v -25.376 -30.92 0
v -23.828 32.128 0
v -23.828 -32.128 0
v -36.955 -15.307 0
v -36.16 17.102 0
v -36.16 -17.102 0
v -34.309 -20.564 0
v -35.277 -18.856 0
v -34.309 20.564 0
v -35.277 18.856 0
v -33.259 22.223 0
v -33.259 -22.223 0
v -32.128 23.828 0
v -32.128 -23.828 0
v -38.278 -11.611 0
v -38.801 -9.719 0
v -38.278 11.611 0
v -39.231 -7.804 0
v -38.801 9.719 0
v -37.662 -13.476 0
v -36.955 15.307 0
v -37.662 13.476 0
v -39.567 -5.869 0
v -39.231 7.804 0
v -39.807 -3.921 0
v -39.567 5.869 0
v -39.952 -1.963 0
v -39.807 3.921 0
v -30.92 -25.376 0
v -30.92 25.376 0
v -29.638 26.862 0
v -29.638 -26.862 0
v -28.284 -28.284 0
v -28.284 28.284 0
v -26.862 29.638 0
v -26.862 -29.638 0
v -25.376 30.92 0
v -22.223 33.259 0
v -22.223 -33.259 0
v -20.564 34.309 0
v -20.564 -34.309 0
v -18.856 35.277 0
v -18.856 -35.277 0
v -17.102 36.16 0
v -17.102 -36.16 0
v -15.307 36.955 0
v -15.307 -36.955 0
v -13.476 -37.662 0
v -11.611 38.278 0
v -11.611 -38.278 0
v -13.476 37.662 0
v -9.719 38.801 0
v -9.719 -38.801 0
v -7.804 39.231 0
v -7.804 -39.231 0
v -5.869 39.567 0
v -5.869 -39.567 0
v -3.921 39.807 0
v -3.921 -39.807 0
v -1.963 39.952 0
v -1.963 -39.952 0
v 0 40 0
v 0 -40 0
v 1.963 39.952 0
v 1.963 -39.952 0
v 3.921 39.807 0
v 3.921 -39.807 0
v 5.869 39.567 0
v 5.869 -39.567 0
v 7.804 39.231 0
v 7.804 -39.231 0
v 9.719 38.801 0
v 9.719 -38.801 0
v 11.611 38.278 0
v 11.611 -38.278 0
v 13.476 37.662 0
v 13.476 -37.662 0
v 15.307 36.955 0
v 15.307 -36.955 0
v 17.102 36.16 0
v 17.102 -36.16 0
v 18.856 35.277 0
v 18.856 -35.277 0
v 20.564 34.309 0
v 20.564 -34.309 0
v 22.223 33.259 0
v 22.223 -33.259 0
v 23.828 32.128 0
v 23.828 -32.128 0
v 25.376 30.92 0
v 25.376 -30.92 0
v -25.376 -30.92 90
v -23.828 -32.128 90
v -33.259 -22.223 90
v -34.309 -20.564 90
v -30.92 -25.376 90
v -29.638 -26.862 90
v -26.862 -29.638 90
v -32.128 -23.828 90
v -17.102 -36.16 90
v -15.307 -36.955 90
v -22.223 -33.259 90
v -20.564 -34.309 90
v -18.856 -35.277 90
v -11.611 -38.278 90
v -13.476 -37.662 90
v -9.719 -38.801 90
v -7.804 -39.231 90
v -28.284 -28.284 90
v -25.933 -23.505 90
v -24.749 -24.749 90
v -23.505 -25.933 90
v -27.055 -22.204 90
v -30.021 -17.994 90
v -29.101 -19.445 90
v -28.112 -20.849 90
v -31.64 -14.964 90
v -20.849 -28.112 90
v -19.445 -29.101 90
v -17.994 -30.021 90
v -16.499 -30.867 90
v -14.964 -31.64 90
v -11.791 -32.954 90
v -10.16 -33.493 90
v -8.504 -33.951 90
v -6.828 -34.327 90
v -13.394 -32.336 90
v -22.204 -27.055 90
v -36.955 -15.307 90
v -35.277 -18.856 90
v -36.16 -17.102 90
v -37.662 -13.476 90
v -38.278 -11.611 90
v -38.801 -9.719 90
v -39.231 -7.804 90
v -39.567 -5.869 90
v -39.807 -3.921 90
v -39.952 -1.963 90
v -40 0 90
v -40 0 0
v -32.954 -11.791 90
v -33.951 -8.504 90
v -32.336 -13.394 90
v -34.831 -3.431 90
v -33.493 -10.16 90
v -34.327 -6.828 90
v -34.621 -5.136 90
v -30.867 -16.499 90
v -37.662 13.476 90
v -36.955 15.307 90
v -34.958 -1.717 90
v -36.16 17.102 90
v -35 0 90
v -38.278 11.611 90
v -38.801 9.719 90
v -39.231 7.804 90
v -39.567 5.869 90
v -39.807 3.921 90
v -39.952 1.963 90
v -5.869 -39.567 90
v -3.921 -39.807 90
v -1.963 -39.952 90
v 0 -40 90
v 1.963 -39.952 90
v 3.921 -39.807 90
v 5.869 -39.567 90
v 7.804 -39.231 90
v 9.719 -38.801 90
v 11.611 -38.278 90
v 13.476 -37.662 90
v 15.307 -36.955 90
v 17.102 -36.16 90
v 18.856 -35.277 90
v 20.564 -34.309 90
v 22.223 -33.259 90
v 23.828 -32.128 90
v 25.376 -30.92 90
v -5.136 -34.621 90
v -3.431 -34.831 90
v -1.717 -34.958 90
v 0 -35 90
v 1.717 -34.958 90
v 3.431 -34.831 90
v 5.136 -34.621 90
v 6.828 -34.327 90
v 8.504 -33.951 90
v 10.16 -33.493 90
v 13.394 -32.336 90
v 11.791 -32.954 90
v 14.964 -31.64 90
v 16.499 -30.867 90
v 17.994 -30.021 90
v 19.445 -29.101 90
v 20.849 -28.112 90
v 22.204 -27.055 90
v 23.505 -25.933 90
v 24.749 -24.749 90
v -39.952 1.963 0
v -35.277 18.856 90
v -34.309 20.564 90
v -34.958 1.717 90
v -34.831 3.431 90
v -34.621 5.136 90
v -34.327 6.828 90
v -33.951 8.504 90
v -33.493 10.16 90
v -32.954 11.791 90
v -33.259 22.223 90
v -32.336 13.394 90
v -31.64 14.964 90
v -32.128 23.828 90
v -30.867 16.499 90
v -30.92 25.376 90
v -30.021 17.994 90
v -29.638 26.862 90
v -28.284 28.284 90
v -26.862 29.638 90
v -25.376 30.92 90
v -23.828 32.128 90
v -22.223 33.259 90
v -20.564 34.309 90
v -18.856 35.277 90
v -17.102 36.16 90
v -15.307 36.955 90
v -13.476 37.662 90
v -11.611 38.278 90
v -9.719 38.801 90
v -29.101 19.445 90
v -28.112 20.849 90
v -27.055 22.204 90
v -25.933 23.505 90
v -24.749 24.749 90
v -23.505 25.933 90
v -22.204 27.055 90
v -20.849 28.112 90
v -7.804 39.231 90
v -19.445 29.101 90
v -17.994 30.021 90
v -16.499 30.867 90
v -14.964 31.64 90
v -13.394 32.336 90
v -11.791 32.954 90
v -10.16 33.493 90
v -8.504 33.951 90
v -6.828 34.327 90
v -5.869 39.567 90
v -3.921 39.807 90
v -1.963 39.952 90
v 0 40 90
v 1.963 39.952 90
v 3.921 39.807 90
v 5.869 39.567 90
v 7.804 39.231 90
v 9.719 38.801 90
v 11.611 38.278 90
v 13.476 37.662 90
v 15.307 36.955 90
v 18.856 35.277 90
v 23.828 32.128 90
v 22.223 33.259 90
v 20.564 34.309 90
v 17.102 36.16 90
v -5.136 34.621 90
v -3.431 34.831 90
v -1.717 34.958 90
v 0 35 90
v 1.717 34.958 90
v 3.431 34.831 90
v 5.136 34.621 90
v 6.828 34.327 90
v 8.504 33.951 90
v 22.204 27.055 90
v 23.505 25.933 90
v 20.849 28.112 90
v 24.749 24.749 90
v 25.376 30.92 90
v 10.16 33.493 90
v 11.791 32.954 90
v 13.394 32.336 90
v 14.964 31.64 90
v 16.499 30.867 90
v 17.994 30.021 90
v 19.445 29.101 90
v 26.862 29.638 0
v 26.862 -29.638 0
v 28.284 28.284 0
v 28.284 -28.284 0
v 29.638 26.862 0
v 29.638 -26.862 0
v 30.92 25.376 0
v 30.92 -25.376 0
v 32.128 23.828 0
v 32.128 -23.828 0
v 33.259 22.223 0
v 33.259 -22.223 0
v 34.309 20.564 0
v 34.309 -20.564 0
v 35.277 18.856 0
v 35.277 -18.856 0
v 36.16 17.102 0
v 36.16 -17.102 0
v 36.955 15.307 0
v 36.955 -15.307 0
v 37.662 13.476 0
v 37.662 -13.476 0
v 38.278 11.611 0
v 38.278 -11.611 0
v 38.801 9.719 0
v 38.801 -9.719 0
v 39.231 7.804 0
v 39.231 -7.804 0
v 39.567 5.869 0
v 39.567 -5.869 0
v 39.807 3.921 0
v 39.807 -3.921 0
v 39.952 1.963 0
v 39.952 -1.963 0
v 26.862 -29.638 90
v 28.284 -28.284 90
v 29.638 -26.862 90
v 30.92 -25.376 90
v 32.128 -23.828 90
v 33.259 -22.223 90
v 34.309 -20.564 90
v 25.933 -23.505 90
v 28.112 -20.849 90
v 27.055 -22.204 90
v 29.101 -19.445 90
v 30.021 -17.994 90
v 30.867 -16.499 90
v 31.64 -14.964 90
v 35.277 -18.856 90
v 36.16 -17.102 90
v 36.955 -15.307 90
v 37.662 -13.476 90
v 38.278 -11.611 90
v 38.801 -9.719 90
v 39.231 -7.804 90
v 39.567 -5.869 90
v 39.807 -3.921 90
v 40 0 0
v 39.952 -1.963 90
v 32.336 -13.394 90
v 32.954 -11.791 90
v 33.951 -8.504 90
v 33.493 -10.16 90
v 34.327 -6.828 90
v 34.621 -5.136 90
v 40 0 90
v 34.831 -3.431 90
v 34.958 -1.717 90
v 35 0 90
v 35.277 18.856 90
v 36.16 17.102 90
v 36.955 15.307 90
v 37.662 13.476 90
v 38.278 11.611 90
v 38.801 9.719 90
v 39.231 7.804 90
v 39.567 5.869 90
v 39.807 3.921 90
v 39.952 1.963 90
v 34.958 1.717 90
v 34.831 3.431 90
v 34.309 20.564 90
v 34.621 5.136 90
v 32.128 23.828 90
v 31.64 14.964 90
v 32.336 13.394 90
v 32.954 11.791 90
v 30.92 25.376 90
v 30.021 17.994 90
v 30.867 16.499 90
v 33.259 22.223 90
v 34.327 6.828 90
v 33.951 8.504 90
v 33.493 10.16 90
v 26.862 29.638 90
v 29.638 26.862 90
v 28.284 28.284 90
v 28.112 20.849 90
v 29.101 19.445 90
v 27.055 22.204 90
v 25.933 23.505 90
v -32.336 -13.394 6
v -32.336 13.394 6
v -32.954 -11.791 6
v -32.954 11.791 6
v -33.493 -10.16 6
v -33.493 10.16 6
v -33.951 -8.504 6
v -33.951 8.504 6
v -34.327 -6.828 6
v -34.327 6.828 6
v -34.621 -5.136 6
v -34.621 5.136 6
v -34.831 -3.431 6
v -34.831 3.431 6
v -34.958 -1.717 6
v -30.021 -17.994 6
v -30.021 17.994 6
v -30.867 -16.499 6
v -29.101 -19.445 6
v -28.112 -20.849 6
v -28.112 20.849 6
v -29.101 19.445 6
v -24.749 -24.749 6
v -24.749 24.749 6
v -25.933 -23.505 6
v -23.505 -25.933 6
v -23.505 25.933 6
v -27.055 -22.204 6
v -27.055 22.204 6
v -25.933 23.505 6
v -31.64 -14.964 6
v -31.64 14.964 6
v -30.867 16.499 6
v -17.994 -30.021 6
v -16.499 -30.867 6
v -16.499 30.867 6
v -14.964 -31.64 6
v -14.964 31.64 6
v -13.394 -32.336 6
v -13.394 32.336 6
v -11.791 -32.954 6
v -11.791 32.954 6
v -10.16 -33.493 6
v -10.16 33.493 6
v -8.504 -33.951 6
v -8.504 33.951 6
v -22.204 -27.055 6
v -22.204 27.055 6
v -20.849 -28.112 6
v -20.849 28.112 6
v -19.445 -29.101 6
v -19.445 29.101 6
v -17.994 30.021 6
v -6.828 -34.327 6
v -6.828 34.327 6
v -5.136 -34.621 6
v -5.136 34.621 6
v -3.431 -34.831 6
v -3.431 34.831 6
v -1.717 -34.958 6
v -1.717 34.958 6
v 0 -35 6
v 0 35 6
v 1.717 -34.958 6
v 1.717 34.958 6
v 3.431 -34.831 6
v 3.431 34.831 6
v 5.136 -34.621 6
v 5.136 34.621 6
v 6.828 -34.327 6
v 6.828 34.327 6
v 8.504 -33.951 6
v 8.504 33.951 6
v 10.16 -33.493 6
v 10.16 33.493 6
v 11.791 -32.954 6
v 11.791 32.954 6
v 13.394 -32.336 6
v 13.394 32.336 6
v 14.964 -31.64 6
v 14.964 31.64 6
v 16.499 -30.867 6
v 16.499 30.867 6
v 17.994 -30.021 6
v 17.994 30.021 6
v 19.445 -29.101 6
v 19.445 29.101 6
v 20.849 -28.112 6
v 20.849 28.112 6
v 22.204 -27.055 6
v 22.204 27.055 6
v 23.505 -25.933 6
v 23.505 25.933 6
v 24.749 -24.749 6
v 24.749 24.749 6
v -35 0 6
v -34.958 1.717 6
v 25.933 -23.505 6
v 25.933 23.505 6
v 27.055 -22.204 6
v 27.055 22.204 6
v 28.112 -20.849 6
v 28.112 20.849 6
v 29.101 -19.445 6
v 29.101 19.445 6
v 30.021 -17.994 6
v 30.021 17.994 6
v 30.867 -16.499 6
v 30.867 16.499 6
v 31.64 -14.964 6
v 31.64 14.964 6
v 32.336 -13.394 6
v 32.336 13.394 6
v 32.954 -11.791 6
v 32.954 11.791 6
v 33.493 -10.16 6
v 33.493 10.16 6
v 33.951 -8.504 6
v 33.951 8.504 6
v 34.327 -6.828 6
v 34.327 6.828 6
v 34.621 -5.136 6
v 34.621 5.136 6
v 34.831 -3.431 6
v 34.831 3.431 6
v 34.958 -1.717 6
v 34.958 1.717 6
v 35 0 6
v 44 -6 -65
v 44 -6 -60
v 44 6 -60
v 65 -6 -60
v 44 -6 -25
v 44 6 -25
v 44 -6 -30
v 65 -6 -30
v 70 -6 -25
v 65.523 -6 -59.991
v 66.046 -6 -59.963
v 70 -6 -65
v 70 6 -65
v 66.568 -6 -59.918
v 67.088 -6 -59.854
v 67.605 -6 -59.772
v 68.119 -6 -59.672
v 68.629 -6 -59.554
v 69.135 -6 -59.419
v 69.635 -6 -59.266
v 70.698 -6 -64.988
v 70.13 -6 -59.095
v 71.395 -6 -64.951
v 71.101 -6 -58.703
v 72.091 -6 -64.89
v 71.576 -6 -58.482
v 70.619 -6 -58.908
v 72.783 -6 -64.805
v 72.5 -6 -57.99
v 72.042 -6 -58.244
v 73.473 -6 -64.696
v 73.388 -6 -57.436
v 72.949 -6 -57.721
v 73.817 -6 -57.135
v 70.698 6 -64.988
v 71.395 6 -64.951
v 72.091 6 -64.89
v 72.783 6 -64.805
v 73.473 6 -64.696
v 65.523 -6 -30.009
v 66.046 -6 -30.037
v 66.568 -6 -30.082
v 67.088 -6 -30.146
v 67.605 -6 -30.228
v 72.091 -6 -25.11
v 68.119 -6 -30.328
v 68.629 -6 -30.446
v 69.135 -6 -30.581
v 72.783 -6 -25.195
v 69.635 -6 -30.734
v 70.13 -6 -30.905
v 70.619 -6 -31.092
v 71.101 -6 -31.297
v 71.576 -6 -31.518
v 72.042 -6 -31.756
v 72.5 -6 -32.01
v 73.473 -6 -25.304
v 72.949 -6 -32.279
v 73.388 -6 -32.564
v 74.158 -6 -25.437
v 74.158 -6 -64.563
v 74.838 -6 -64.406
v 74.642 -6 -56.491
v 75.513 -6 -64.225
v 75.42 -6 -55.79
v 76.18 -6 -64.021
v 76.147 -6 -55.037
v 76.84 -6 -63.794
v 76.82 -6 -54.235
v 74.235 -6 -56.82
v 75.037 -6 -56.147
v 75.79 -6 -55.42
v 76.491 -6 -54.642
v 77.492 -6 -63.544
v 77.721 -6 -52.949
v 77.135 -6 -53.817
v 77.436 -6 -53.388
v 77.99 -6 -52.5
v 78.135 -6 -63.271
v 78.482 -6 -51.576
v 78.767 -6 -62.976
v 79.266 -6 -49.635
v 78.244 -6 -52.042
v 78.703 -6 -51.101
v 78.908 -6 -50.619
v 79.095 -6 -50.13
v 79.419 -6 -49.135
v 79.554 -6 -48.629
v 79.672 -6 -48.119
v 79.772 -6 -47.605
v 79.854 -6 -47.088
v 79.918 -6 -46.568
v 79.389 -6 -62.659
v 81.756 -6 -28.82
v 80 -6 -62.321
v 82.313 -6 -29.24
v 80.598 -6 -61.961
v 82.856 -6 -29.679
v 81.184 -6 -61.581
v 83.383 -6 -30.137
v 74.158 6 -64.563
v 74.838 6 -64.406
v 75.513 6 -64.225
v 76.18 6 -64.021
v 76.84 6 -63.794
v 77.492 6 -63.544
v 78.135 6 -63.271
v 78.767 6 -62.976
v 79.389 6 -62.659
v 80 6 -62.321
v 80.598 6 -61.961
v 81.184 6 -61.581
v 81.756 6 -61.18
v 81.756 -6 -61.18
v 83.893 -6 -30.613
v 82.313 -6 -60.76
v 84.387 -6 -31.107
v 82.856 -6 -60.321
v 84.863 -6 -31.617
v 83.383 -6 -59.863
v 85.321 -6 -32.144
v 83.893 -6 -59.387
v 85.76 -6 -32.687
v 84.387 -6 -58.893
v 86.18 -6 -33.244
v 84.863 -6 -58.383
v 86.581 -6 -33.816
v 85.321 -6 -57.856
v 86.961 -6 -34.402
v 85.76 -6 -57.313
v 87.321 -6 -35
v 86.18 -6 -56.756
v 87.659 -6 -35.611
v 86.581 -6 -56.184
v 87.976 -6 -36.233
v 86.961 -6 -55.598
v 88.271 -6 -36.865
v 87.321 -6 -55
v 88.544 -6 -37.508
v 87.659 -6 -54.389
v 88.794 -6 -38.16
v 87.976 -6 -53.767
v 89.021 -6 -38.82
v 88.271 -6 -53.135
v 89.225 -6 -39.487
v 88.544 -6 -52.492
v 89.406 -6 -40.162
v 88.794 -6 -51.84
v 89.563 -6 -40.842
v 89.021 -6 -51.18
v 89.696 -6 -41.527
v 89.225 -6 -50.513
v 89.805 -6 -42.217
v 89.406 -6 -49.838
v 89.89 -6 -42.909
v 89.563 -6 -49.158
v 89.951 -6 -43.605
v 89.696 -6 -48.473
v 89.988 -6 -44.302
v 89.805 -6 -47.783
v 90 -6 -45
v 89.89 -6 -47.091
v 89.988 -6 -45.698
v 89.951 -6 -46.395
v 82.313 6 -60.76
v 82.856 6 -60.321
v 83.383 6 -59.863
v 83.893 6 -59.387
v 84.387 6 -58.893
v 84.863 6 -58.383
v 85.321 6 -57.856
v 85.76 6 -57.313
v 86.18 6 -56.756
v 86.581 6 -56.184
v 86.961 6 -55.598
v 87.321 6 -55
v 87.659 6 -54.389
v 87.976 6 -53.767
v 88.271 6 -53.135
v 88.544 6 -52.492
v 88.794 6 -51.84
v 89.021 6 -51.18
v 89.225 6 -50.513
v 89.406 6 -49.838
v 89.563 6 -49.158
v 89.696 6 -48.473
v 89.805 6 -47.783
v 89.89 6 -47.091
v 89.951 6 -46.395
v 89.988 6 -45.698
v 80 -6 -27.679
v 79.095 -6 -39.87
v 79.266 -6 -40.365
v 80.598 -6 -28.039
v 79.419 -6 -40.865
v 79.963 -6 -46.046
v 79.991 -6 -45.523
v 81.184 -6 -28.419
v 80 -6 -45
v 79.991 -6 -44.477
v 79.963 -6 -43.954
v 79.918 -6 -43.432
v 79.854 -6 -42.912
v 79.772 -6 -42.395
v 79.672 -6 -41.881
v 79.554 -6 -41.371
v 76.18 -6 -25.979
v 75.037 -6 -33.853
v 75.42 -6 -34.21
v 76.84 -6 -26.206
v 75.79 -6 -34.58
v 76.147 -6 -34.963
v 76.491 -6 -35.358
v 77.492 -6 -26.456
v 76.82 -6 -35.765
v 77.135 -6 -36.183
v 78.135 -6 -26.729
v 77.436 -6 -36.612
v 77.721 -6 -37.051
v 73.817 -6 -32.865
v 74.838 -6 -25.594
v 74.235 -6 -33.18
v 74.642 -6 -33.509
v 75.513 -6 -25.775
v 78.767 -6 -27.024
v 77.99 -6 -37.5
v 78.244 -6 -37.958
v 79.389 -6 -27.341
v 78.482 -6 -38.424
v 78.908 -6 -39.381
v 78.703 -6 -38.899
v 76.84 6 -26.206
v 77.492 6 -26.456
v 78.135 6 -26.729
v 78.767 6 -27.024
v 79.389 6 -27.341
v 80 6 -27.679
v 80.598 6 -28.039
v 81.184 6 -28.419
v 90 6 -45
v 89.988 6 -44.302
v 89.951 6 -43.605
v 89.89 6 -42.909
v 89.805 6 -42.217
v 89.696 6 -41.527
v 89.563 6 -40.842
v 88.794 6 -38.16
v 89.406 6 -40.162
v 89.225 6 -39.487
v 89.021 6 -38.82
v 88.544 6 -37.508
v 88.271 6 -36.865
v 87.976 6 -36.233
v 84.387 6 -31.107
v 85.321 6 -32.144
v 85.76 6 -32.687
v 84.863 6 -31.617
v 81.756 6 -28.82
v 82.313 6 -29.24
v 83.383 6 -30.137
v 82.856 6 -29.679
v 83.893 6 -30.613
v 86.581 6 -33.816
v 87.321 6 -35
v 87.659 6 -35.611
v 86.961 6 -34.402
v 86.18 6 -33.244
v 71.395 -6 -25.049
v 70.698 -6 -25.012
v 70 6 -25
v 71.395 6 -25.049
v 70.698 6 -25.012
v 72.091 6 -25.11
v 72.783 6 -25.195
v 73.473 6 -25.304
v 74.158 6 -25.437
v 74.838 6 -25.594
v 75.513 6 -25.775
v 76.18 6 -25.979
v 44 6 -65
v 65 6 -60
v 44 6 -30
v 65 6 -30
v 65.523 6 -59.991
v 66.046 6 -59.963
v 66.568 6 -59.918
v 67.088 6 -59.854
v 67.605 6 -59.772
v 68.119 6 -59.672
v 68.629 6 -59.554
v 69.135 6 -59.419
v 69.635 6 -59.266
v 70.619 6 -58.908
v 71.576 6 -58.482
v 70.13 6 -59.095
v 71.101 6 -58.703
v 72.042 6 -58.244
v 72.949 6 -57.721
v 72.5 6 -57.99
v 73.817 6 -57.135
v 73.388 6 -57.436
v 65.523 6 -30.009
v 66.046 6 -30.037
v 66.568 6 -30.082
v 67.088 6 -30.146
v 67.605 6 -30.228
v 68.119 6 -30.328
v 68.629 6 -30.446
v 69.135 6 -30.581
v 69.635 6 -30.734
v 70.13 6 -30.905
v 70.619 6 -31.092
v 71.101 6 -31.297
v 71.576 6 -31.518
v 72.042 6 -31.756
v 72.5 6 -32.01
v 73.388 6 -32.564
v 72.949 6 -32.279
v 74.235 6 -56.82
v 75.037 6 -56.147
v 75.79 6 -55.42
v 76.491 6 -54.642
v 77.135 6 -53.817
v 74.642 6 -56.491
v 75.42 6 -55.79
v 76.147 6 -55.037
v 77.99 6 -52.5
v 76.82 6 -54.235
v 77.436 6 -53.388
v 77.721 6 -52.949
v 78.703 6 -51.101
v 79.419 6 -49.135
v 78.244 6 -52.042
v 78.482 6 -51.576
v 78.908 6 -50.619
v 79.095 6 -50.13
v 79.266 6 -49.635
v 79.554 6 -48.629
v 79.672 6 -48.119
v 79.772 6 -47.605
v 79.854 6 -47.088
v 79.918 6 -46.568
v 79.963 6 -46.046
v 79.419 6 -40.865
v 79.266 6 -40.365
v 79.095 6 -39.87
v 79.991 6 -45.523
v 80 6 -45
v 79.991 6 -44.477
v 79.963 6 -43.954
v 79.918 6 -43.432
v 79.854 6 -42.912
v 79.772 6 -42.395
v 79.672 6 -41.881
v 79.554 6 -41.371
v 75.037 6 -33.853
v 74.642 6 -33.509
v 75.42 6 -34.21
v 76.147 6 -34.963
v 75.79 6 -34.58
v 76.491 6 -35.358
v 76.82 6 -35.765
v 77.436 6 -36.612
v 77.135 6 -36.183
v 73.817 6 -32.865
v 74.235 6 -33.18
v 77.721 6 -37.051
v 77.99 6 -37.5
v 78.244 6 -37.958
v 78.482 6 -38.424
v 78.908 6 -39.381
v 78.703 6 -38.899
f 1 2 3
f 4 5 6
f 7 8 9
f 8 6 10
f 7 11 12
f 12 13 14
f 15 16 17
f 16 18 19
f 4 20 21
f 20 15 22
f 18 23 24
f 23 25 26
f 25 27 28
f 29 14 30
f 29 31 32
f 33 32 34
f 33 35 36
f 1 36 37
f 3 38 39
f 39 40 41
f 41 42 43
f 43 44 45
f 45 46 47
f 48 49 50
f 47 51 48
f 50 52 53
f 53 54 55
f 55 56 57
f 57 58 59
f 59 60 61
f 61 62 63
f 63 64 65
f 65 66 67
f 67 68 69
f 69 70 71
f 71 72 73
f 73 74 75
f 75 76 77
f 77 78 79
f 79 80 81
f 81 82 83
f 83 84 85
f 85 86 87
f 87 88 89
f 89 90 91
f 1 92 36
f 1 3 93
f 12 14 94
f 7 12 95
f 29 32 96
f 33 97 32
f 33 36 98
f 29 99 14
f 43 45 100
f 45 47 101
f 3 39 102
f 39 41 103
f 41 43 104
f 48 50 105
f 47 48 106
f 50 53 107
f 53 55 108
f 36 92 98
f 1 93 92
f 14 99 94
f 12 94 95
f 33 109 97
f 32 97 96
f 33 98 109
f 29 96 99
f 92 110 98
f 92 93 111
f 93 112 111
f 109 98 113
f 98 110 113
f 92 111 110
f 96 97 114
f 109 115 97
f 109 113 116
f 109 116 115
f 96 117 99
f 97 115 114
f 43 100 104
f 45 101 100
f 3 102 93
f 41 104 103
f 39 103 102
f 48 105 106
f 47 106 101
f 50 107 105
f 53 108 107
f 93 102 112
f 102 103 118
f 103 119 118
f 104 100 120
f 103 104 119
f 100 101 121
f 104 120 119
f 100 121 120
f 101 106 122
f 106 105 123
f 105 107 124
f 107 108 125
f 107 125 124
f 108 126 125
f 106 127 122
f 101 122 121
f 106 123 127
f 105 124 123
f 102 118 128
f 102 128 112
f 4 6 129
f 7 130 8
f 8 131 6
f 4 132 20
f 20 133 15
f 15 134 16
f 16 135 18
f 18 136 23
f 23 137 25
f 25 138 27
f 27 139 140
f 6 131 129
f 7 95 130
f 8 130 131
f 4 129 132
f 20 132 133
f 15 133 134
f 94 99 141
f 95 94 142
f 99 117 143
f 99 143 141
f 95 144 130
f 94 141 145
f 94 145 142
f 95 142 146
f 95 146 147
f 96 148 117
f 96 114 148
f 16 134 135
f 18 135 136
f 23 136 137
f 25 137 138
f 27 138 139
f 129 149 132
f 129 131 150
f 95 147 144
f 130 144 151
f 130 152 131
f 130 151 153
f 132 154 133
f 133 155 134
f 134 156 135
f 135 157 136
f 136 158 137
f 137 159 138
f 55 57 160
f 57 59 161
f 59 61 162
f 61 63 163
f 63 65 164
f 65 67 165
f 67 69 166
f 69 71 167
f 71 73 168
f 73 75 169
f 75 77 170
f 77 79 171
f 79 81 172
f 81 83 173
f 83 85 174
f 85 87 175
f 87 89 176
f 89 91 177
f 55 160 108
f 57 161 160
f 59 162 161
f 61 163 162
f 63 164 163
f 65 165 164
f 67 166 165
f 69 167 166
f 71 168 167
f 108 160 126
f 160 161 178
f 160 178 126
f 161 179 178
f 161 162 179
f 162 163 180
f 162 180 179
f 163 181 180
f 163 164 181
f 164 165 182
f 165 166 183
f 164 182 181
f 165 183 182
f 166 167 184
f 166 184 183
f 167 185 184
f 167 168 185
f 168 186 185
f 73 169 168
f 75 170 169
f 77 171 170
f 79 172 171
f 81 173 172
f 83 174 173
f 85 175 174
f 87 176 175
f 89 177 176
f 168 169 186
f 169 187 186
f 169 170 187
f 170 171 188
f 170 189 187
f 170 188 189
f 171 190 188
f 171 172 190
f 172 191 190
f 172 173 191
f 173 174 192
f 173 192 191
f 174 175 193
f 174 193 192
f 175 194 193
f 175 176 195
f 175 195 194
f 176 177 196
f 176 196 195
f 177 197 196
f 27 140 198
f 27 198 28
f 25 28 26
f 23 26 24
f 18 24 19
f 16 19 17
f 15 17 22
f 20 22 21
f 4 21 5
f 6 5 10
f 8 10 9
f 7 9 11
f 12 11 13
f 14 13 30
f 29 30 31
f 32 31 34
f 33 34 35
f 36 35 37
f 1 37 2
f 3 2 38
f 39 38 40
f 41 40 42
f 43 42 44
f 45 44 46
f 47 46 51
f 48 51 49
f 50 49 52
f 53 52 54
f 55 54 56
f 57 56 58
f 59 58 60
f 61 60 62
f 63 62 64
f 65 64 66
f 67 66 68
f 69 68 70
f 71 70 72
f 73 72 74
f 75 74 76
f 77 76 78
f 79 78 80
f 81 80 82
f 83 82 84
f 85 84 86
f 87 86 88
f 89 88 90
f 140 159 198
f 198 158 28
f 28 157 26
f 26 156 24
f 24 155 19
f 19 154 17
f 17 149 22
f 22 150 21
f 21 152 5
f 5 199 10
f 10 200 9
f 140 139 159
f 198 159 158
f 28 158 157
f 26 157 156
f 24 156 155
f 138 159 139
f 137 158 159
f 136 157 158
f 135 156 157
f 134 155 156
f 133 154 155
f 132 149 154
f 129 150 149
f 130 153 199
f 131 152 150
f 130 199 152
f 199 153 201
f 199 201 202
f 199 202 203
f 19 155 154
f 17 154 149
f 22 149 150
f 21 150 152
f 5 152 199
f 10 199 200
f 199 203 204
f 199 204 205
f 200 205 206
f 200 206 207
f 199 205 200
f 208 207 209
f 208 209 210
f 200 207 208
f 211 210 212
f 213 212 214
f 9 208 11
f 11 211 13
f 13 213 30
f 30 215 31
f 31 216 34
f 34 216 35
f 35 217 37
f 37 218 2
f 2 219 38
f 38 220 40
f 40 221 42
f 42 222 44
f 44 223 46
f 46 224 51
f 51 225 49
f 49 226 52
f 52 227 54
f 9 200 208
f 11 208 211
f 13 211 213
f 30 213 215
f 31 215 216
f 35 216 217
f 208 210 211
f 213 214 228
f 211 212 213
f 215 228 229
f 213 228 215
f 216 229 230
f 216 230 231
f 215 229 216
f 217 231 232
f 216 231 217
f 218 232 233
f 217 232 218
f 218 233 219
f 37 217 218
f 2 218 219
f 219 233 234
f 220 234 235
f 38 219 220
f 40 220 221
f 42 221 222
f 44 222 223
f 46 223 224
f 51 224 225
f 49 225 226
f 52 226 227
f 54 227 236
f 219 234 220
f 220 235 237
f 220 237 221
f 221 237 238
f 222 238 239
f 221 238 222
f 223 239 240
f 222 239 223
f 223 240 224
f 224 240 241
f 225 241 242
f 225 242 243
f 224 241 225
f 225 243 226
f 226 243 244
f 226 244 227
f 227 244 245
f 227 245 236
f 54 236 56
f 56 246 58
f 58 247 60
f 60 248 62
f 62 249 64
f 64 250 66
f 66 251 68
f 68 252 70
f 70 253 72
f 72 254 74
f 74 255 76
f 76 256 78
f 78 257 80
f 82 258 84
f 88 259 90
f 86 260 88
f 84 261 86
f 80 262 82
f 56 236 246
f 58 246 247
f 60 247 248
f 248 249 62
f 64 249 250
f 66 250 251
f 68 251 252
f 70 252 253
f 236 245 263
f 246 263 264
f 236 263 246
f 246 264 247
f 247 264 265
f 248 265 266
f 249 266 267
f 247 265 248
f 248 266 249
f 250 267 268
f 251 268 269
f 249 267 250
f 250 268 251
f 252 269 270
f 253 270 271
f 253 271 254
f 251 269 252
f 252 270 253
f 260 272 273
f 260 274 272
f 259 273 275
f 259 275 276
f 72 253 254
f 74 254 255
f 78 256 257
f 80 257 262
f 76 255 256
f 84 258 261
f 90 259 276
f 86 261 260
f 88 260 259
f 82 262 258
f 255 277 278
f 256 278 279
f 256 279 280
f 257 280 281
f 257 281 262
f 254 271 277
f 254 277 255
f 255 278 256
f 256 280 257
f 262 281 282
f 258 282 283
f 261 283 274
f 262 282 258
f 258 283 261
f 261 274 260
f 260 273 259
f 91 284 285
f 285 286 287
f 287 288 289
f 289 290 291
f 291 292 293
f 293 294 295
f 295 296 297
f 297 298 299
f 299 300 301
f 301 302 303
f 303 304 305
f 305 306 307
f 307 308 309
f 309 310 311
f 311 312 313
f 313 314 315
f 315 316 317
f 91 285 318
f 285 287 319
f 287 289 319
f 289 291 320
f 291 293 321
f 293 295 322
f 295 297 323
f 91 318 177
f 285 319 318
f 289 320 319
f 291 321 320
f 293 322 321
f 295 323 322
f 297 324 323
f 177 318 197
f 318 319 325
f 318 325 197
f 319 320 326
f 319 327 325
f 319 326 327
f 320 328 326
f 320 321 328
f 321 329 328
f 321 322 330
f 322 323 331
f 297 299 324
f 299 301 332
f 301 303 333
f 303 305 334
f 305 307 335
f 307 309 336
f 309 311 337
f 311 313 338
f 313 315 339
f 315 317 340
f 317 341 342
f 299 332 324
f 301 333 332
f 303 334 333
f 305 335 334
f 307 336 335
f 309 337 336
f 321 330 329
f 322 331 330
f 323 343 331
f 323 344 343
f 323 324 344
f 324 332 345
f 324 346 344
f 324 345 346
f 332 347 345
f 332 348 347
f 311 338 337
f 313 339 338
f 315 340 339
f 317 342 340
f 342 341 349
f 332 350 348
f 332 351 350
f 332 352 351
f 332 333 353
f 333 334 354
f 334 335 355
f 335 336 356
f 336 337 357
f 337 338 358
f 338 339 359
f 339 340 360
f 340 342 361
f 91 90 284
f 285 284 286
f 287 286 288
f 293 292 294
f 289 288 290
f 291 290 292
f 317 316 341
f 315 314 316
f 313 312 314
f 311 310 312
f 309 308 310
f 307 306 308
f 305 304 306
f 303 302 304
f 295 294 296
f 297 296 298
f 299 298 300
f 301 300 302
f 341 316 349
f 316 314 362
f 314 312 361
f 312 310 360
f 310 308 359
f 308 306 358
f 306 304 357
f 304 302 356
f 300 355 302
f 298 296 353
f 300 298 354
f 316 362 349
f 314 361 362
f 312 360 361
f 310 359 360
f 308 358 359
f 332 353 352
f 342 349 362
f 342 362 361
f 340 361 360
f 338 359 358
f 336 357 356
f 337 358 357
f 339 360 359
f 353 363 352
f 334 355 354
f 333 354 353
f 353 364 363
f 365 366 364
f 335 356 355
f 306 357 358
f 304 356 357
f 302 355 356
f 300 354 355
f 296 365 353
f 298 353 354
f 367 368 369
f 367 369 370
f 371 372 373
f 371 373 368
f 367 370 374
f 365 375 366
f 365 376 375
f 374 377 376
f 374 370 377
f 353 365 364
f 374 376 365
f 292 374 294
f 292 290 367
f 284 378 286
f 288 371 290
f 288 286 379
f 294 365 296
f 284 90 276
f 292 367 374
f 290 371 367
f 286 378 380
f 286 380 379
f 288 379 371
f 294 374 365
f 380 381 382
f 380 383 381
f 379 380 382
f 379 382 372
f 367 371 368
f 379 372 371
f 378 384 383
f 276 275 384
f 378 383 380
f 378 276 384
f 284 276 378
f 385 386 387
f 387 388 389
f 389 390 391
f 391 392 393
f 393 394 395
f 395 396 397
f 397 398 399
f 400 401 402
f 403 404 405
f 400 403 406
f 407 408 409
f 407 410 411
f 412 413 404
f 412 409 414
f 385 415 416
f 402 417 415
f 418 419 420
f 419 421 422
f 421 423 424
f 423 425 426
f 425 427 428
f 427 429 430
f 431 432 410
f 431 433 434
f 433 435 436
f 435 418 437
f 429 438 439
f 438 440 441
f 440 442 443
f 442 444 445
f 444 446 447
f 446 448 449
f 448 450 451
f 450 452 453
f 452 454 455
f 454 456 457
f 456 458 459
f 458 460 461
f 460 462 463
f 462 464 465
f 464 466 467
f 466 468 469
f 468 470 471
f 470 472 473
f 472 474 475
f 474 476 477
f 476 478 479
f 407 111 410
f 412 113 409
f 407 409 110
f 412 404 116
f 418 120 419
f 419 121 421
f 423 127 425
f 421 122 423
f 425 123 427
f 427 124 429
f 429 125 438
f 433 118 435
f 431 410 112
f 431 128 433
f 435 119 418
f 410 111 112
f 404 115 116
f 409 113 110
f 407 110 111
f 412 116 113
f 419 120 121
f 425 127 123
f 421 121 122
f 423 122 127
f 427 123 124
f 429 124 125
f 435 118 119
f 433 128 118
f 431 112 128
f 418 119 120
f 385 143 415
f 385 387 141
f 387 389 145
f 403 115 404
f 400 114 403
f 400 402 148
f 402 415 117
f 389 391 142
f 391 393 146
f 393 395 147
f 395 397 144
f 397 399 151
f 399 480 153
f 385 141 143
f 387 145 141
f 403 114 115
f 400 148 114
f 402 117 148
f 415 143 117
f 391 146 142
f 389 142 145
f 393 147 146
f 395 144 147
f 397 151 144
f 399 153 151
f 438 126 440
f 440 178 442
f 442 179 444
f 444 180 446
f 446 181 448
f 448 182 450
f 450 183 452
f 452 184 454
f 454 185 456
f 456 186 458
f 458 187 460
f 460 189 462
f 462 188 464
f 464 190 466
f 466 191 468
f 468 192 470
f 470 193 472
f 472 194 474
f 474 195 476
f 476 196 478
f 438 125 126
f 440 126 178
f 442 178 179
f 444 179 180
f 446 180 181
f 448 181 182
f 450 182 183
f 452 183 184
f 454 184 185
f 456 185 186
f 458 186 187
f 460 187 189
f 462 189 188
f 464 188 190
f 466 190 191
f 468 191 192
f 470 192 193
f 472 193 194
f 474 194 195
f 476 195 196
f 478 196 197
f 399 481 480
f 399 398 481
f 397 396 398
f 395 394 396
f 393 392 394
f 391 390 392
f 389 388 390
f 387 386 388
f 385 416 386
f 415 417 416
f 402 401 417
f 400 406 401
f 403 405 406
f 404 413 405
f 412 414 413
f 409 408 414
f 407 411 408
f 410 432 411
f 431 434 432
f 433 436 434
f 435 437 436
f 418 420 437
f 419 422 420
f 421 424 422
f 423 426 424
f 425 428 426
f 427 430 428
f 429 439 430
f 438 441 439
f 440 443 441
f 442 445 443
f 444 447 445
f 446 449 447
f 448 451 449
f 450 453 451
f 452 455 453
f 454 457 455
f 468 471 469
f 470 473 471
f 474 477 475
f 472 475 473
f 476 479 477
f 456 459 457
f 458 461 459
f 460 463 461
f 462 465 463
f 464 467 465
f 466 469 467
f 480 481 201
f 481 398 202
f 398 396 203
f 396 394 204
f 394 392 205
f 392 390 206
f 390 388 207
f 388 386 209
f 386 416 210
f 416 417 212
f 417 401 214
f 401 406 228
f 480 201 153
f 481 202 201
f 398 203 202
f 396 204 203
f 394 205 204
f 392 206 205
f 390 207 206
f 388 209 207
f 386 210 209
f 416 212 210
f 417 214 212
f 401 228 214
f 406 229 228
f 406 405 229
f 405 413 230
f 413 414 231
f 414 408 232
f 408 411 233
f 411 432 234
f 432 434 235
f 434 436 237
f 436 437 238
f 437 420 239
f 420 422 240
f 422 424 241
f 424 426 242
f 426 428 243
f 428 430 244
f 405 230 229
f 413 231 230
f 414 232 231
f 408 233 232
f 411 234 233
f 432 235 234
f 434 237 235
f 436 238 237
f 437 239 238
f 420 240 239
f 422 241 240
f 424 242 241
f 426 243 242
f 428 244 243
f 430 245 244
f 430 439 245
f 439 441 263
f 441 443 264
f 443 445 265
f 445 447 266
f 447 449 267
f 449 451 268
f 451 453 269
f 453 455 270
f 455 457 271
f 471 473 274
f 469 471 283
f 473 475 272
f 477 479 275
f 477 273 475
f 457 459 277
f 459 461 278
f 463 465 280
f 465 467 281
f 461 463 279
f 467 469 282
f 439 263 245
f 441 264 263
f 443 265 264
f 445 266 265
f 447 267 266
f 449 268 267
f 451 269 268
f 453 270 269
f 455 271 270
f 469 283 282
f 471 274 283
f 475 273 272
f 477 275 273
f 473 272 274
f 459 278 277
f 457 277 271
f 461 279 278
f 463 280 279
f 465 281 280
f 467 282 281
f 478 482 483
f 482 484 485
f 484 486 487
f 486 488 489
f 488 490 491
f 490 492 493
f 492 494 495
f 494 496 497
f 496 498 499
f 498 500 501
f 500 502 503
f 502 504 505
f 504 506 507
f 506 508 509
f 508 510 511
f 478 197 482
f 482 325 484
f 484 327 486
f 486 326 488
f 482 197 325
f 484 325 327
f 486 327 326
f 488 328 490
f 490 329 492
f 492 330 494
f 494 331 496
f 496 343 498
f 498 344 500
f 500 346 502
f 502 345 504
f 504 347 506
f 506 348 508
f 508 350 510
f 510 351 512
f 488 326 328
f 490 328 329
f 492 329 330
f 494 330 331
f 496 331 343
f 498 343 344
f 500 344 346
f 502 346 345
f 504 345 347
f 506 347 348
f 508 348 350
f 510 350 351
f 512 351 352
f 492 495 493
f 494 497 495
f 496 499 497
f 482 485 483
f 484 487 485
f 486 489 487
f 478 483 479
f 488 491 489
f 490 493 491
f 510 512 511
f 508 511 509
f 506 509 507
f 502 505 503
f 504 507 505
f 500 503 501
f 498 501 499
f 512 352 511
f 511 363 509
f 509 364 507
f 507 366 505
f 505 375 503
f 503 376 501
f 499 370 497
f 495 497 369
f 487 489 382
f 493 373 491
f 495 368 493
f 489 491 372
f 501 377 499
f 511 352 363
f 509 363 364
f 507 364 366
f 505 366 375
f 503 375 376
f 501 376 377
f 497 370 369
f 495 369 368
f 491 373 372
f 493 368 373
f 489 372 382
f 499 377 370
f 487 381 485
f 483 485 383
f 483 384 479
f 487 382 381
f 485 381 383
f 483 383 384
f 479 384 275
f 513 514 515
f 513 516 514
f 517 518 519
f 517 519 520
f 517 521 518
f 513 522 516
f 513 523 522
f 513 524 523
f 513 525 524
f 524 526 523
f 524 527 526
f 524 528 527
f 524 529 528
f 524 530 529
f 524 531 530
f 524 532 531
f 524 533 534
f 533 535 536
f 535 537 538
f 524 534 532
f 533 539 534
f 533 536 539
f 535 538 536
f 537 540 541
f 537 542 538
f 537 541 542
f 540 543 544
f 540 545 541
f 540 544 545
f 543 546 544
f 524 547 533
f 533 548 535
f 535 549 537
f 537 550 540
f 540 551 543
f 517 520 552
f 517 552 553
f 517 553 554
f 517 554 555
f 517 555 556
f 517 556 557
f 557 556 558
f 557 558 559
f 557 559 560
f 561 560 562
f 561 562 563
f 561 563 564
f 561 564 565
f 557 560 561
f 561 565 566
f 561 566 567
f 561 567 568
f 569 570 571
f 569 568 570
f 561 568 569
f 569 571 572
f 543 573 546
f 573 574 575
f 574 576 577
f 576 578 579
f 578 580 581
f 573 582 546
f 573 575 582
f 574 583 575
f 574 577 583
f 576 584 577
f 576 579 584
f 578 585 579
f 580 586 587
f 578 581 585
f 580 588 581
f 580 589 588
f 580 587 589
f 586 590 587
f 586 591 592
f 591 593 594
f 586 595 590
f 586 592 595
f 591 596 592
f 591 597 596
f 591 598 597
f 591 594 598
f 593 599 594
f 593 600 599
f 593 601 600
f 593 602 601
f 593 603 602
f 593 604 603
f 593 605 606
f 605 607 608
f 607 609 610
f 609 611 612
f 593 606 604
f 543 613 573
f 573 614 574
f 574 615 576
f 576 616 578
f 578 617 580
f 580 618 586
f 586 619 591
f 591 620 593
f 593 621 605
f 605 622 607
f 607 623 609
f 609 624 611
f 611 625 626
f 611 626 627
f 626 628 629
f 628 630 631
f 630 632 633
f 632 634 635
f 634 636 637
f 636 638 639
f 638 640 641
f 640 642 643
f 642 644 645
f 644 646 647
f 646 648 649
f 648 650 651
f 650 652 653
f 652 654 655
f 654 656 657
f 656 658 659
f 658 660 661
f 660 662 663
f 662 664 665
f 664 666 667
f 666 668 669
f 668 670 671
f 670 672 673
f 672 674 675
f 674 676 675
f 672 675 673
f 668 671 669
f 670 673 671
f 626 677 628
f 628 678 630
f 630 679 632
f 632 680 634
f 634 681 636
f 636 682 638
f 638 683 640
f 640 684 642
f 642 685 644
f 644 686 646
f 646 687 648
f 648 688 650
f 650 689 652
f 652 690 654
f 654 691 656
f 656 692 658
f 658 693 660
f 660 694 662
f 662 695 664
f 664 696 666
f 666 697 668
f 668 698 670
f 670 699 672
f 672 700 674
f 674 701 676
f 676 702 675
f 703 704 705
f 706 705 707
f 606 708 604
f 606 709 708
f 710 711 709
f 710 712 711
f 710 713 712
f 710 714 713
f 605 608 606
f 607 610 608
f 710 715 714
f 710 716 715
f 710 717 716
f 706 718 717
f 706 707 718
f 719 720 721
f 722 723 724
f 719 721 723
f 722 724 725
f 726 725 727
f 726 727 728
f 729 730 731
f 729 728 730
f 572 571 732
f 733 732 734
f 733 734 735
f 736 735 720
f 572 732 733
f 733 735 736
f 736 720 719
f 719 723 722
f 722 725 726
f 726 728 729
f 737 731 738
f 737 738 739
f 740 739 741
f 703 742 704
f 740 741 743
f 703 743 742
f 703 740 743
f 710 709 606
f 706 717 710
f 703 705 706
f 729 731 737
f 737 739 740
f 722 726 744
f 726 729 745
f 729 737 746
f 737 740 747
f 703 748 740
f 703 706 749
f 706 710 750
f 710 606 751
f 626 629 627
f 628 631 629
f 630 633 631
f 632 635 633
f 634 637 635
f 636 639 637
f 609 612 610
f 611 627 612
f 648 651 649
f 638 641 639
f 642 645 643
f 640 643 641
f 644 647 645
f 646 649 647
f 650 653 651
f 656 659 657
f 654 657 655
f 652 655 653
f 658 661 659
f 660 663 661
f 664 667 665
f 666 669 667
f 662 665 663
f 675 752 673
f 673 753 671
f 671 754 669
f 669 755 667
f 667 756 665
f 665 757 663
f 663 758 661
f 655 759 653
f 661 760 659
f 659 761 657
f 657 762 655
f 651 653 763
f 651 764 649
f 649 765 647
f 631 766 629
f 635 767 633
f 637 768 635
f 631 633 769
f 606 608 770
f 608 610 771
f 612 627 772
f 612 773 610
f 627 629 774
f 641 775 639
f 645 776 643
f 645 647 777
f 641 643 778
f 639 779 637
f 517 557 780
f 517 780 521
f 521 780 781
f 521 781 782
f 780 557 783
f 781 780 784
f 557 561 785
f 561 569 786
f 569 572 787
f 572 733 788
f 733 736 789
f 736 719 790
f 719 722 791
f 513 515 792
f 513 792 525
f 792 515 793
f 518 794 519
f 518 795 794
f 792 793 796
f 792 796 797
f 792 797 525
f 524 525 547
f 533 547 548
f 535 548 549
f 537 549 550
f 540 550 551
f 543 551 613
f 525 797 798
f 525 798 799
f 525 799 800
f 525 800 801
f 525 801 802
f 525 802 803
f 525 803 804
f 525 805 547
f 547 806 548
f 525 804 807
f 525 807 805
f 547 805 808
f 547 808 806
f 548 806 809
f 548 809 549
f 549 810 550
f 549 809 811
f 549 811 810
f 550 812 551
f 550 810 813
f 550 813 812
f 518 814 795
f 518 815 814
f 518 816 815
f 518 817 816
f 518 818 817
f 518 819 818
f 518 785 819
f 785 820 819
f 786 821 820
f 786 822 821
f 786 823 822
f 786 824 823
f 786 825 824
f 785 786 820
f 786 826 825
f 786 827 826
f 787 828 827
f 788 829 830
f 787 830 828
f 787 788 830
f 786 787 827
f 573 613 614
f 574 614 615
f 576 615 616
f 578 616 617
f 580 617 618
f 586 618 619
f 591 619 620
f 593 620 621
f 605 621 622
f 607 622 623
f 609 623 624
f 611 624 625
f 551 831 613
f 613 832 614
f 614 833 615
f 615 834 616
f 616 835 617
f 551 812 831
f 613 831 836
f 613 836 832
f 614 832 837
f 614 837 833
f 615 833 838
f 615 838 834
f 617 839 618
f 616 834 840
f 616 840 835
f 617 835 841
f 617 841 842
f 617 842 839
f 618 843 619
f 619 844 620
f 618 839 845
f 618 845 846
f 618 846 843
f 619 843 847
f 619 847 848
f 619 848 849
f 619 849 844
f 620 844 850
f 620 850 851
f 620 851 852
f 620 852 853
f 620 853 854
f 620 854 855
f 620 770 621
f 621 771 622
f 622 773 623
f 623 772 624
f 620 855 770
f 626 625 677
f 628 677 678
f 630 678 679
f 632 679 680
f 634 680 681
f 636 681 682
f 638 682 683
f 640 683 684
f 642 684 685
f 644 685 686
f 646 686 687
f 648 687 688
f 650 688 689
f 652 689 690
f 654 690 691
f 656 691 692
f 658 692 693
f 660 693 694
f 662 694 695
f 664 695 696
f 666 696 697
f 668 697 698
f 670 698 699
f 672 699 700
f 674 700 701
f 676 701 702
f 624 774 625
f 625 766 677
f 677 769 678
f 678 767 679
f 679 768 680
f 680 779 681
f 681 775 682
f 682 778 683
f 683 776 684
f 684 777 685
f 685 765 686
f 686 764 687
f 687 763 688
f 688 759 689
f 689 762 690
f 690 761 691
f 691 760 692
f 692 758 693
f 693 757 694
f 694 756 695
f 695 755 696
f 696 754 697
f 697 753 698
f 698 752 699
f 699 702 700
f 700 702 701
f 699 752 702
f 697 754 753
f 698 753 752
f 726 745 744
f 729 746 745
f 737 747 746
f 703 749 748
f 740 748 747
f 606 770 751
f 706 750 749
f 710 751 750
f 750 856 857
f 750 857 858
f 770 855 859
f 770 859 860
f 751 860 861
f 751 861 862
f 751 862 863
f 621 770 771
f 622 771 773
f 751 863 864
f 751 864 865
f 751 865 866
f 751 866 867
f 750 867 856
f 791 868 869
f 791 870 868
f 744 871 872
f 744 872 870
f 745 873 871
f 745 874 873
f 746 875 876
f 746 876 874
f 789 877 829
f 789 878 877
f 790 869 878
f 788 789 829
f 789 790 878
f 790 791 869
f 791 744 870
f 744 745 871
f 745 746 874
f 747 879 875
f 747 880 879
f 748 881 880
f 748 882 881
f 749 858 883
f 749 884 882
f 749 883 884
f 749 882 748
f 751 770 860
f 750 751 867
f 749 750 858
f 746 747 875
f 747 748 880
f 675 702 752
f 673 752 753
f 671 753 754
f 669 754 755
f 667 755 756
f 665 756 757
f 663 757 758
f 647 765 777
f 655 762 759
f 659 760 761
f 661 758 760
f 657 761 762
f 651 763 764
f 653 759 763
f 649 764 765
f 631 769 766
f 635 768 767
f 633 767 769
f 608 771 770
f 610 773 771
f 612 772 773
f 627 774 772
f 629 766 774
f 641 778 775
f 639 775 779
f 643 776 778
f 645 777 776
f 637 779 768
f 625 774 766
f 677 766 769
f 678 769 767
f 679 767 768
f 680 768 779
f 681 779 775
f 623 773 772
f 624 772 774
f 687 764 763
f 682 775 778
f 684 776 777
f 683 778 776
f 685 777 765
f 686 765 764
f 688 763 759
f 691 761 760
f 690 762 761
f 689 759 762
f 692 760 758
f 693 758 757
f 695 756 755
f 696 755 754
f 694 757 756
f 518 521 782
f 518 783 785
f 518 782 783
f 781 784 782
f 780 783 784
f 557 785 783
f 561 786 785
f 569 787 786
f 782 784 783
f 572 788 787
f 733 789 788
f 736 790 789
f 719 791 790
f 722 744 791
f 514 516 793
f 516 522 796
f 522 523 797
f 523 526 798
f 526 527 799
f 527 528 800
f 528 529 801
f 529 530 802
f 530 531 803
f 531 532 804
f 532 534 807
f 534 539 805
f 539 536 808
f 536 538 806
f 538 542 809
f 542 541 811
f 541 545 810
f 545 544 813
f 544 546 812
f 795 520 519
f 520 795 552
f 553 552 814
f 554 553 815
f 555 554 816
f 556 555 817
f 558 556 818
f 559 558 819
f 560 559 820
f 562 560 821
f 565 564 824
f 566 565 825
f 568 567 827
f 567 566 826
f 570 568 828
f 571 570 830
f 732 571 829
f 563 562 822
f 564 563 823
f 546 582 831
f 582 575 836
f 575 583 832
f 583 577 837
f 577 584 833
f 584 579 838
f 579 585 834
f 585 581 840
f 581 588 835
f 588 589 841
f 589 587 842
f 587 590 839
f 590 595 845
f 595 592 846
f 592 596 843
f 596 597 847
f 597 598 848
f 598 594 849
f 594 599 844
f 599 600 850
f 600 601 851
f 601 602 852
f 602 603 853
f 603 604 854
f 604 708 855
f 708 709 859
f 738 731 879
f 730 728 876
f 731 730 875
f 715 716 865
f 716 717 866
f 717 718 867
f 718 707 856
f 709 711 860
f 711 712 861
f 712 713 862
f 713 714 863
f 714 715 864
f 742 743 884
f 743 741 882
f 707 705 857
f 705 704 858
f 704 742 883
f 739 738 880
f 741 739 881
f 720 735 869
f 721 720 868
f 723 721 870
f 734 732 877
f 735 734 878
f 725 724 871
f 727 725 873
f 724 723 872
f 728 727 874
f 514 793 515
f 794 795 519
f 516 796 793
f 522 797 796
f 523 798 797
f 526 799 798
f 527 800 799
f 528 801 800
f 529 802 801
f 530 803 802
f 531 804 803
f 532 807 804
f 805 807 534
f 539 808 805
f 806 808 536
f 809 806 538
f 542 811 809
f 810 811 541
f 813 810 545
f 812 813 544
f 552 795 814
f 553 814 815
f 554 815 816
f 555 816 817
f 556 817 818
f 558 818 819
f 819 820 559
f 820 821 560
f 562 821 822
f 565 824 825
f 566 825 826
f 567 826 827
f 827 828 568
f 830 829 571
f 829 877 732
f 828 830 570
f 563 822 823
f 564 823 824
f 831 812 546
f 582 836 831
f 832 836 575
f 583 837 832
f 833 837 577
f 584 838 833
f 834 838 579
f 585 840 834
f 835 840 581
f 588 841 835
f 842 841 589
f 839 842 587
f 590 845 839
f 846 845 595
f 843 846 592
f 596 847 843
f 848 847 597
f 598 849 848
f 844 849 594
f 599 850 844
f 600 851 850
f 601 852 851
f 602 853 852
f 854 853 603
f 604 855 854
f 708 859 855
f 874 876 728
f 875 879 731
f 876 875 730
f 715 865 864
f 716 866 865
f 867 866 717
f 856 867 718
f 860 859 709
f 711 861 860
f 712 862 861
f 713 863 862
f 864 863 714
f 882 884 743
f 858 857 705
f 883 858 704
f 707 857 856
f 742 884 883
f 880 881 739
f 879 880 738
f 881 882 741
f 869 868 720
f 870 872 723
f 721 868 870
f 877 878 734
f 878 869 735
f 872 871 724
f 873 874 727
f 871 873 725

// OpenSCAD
$fn = 128;

// ===== Mug dimensions =====
outer_d  = 80;   // mm
inner_d  = 70;   // mm
mug_h    = 90;   // mm
bottom_t = 6;    // mm

// ===== Handle inner opening requirement =====
// inner void: height 30mm (Z) x width 25mm (radial X)
void_h = 30;
void_w = 25;

// ===== Handle thickness =====
t_radial = 5;    // wall thickness in XZ profile
t_depth  = 12;   // thickness along Y (grip depth)

// Vertical center of handle
zc = mug_h / 2;

// Mug outer radius
r_outer = outer_d / 2;

// ----- D profile parameters (in XZ plane) -----
ri = void_h / 2;            // 15 (inner semicircle radius)
x_ci = r_outer + void_w;    // inner semicircle center X
zi0 = zc - void_h/2;
zi1 = zc + void_h/2;

// outer profile offset from inner profile
ro = ri + t_radial;         // 20
x_co = x_ci + t_radial;
zo0 = zi0 - t_radial;
zo1 = zi1 + t_radial;

// overlap into mug to guarantee manifold union
eps = 1.0;
x_flat_inner = r_outer - eps;          // inner flat of handle body enters mug
x_flat_outer = x_flat_inner + t_radial;

// D-shape polygon: flat side at x_flat, semicircle bulging to +X
module d_profile(x_flat, z0, z1, x_c, r) {
    polygon(points = concat(
        [[x_flat, z0], [x_flat, z1]],
        [for (a = [90:-2:-90]) [x_c + r*cos(a), zc + r*sin(a)]]
    ));
}

// Mug body with hollow interior and bottom thickness
module mug_body() {
    difference() {
        cylinder(h = mug_h, d = outer_d);
        translate([0, 0, bottom_t])
            cylinder(h = mug_h - bottom_t + 0.01, d = inner_d);
    }
}

// Handle solid (before carving its opening), centered on +X side
module handle_outer() {
    translate([0, -t_depth/2, 0])
        rotate([-90, 0, 0])
            linear_extrude(height = t_depth)
                d_profile(x_flat_outer, zo0, zo1, x_co, ro);
}

// Inner void of handle (kept tangent at mug outer surface)
module handle_inner_void() {
    translate([0, -(t_depth/2 + 0.1), 0])
        rotate([-90, 0, 0])
            linear_extrude(height = t_depth + 0.2)
                d_profile(r_outer, zi0, zi1, x_ci, ri);
}

// Final model
union() {
    mug_body();
    difference() {
        handle_outer();
        handle_inner_void();
    }
}
